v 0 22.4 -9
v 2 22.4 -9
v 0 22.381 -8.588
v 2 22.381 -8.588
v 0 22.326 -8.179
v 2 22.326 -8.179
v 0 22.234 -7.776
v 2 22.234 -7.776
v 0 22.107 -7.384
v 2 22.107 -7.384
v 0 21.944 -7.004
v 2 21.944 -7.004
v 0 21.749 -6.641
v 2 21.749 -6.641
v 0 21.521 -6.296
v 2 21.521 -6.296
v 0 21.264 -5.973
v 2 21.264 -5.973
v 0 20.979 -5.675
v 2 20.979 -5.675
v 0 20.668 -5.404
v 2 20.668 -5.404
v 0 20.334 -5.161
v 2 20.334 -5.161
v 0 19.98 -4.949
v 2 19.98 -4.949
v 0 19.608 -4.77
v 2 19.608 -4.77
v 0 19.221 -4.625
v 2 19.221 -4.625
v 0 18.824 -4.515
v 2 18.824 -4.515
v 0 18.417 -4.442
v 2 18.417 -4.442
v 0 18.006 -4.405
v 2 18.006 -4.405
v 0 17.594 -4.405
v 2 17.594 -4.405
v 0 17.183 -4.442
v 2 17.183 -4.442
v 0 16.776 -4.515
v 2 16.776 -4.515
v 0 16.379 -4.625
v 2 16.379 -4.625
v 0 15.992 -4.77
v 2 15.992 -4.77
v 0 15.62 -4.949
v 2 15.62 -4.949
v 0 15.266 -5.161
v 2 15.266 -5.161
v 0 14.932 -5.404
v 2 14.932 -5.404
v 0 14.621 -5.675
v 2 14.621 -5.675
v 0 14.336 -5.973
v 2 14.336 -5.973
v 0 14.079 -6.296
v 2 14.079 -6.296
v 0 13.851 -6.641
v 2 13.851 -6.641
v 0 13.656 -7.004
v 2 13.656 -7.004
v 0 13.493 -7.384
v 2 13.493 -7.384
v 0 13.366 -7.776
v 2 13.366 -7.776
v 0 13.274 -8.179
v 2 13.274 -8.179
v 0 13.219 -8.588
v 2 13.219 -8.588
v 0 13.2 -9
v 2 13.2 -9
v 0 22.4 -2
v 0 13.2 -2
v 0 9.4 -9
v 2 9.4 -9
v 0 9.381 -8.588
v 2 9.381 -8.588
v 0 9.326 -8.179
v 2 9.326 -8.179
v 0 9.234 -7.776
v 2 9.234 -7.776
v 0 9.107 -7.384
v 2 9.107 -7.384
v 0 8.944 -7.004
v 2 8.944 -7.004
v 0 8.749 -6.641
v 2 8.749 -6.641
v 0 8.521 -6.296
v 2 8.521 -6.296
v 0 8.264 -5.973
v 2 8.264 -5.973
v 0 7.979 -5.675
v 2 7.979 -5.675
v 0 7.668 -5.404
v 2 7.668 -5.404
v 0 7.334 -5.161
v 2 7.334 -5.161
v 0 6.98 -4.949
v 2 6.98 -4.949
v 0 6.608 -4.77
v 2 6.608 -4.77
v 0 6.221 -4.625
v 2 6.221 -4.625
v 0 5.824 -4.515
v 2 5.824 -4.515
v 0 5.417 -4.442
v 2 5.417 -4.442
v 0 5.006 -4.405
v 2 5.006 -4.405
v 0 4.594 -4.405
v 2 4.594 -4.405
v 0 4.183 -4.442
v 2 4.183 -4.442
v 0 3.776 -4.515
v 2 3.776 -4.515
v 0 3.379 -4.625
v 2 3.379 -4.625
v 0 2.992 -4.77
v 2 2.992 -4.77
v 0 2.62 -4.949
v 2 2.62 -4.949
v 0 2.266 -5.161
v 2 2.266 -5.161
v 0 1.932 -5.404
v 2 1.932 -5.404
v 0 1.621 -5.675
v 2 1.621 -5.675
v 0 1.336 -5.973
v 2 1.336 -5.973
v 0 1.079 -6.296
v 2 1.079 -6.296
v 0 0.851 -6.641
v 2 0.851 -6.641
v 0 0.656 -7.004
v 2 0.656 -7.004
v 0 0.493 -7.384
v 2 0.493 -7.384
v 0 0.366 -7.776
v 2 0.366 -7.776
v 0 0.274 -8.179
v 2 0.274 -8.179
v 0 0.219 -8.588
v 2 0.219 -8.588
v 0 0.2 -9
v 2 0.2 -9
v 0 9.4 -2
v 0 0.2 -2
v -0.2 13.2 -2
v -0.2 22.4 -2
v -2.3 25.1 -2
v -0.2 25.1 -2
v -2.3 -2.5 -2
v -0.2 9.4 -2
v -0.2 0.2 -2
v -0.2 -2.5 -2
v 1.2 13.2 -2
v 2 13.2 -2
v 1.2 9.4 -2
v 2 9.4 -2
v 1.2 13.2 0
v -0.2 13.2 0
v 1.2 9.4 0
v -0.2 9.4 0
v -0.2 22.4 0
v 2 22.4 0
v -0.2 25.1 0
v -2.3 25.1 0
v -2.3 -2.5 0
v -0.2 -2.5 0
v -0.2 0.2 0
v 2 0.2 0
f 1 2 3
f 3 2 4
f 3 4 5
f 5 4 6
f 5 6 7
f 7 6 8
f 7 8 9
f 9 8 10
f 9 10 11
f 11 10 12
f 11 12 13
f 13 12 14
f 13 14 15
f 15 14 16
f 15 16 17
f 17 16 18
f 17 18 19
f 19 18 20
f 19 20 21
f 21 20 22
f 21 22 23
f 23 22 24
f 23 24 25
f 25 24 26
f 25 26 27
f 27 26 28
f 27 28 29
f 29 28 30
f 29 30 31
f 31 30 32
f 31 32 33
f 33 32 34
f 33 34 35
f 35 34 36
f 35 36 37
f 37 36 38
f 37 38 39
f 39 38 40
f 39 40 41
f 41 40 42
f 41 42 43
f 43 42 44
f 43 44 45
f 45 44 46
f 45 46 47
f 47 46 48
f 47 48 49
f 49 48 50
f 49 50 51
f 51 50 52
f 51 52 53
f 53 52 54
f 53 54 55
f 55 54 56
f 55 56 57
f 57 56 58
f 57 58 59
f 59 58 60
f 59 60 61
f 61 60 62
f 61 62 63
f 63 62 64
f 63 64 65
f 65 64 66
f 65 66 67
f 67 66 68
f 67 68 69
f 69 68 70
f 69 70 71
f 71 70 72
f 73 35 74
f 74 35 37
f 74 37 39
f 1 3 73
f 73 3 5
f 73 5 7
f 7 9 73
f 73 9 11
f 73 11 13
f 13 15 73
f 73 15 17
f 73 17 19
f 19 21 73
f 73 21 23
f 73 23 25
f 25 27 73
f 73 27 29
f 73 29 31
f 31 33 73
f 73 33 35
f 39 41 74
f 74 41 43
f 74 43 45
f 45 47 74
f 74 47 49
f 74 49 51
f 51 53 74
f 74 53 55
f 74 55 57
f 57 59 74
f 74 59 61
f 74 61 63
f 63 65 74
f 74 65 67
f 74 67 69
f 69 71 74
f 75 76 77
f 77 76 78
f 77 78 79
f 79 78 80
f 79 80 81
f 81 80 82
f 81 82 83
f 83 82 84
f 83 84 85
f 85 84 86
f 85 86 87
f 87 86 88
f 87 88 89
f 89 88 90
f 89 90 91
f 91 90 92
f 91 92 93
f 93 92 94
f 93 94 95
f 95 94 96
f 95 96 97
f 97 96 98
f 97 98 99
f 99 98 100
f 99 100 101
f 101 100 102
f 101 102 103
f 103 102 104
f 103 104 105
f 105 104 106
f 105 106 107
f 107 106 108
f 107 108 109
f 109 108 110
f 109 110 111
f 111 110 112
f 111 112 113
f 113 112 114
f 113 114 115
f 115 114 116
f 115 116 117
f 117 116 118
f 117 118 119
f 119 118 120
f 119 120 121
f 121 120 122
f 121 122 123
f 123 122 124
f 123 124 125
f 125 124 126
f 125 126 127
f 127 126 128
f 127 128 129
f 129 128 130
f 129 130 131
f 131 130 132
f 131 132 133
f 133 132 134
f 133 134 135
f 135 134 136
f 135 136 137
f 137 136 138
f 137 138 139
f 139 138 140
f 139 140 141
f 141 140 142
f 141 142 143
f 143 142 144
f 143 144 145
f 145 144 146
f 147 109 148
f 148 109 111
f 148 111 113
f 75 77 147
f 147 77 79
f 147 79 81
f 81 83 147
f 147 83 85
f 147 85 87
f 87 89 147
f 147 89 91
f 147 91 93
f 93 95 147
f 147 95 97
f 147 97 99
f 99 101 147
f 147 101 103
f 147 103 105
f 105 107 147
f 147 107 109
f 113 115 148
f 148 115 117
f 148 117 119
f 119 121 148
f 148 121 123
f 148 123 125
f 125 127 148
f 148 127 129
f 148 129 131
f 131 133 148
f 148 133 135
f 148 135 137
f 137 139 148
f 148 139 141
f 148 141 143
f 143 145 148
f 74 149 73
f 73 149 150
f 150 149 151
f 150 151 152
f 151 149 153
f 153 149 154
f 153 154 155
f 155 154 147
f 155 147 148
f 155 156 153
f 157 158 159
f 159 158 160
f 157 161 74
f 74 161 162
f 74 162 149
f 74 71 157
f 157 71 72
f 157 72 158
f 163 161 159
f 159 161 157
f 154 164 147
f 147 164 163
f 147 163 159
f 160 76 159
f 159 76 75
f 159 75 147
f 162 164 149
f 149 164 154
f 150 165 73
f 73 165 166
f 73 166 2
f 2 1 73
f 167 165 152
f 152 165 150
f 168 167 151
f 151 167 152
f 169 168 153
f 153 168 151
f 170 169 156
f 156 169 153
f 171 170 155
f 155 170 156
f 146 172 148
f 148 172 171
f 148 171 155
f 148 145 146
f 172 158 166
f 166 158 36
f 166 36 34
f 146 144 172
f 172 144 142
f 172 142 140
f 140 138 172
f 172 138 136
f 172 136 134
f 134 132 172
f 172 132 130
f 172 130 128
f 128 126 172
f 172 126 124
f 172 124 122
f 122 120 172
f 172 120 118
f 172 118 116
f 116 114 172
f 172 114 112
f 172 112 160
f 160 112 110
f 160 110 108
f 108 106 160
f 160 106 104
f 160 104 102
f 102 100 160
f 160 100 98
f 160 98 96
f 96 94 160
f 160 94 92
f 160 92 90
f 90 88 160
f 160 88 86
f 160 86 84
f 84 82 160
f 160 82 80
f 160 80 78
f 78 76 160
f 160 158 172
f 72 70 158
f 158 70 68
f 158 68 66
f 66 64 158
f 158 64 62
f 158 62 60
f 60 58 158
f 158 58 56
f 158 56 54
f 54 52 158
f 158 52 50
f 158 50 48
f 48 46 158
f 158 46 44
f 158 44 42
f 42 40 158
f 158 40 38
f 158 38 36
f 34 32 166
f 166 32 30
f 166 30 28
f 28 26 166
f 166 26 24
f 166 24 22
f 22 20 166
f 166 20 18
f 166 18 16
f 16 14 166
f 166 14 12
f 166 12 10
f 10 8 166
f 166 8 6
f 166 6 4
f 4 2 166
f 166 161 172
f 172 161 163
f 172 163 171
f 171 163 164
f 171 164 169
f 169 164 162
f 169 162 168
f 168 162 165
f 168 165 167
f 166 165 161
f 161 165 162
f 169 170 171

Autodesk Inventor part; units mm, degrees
ref_plane "YZ Plane" through (0, 0, 0) normal (1, 0, 0) x (0, 1, 0)
ref_plane "XZ Plane" through (0, 0, 0) normal (0, 1, 0) x (-1, 0, 0)
ref_plane "XY Plane" through (0, 0, 0) normal (0, 0, 1) x (1, 0, 0)
sketch "Sketch1" plane through (0, 0, 0) normal (0, 0, 1) x (1, 0, 0)
  line L0 (0, 0) -> (0, -2.7) projected
  line L1 (0, -2.7) -> (-2.5, -2.7) projected
  line L2 (-2.5, -2.7) -> (-2.5, 25.3) projected
  line L3 (0, 25.3) -> (-2.5, 25.3) projected
  line L4 (0, 25.3) -> (0, 22.6) projected
  line L5 (0, 22.6) -> (2, 22.6) projected
  line L6 (2, 27.3) -> (2, 22.6) projected
  line L7 (-4.5, 27.3) -> (2, 27.3) projected
  line L8 (-4.5, -4.7) -> (-4.5, 27.3) projected
  line L9 (-4.5, -4.7) -> (2, -4.7) projected
  line L10 (2, 0) -> (2, -4.7) projected
  line L11 (0, 0) -> (2, 0) projected
  line L12 (-0.2, 25.1) -> (-2.3, 25.1)
  line L13 (-2.3, 25.1) -> (-2.3, -2.5)
  line L14 (-2.3, -2.5) -> (-0.2, -2.5)
  line L15 (-0.2, -2.5) -> (-0.2, 25.1)
  line L16 (0, 22.6) -> (0, 22.4) construction
  line L17 (1, 13) -> (2, 13) projected
  line L18 (1, 9.6) -> (1, 13) projected
  line L19 (2, 9.6) -> (1, 9.6) projected
  line L20 (2, 13) -> (2, 9.6) projected
  line L21 (1, 11.3) -> (1.2, 11.3) construction
  line L22 (2, 13) -> (1.2, 13)
  line L23 (1.2, 13) -> (1.2, 9.6)
  line L24 (1.2, 9.6) -> (2, 9.6)
  line L25 (2, 9.6) -> (2, 13)
  line L26 (1.2, 13) -> (1.2, 13.2)
  line L27 (2, 13.2) -> (-0.2, 13.2)
  line L28 (-0.2, 13.2) -> (-0.2, 22.4)
  line L29 (-0.2, 22.4) -> (2, 22.4)
  line L30 (2, 22.4) -> (2, 13.2)
  line L31 (2, 13.2) -> (2, 13)
  line L32 (2, 9.6) -> (1.2, 9.6)
  line L33 (1.2, 9.6) -> (1.2, 9.4)
  line L34 (1.2, 9.4) -> (2, 9.4)
  line L35 (2, 9.4) -> (2, 9.6)
  line L36 (2, 9.4) -> (-0.2, 9.4)
  line L37 (-0.2, 9.4) -> (-0.2, 0.2)
  line L38 (-0.2, 0.2) -> (2, 0.2)
  line L39 (2, 0.2) -> (2, 9.4)
  point P0 (-1.25, 11.3)
  point P1 (-1.25, 11.3)
  dimension "d0" = 2.1
  dimension "d1" = 27.6
  dimension "d2" = 0.2
  dimension "d3" = 0.2
  dimension "d4" = 0.2
  dimension "d5" = 0.2
  dimension "d6" = 9.2
extrude "Extrusion1" add sketch "Sketch1" against normal blind 2 contours L15 L14 L13 L12 | L29 L30 L27 L15 | L36 L34 L39 L38 L15 | L27 L31 L17 L26 | L33 L19 L35 L34 | L17 L20 L19 L23
sketch "Sketch2" plane through (2, 0.2, 0) normal (1, 0, 0) x (0, 0, -1)
  arc A0 (9, -0.2) -> (9, 9.4) centre (9, 4.6) ccw projected
  arc A1 (9, 12.8) -> (9, 22.4) centre (9, 17.6) ccw projected
  circle A2 centre (9, 4.6) radius 4.6
  circle A3 centre (9, 17.6) radius 4.6
  line L0 (2, 22.2) -> (2, 0) projected
  line L1 (9, 0) -> (2, 0)
  line L2 (9, 9.2) -> (2, 9.2)
  line L3 (2, 0) -> (2, 9.2)
  line L4 (9, 13) -> (2, 13)
  line L5 (2, 13) -> (2, 22.2)
  line L6 (0, 22.2) -> (2, 22.2) projected
  line L7 (9, 22.2) -> (2, 22.2)
  point P0 (0, -0.2)
  dimension "d12" = 9.2
  dimension "d13" = 9.2
extrude "Extrusion3" add sketch "Sketch2" against normal blind 2 contours L0 L7 A3 L4 | A2 L1 L0 L2
properties part number "prototype7_2_3DPrint"
